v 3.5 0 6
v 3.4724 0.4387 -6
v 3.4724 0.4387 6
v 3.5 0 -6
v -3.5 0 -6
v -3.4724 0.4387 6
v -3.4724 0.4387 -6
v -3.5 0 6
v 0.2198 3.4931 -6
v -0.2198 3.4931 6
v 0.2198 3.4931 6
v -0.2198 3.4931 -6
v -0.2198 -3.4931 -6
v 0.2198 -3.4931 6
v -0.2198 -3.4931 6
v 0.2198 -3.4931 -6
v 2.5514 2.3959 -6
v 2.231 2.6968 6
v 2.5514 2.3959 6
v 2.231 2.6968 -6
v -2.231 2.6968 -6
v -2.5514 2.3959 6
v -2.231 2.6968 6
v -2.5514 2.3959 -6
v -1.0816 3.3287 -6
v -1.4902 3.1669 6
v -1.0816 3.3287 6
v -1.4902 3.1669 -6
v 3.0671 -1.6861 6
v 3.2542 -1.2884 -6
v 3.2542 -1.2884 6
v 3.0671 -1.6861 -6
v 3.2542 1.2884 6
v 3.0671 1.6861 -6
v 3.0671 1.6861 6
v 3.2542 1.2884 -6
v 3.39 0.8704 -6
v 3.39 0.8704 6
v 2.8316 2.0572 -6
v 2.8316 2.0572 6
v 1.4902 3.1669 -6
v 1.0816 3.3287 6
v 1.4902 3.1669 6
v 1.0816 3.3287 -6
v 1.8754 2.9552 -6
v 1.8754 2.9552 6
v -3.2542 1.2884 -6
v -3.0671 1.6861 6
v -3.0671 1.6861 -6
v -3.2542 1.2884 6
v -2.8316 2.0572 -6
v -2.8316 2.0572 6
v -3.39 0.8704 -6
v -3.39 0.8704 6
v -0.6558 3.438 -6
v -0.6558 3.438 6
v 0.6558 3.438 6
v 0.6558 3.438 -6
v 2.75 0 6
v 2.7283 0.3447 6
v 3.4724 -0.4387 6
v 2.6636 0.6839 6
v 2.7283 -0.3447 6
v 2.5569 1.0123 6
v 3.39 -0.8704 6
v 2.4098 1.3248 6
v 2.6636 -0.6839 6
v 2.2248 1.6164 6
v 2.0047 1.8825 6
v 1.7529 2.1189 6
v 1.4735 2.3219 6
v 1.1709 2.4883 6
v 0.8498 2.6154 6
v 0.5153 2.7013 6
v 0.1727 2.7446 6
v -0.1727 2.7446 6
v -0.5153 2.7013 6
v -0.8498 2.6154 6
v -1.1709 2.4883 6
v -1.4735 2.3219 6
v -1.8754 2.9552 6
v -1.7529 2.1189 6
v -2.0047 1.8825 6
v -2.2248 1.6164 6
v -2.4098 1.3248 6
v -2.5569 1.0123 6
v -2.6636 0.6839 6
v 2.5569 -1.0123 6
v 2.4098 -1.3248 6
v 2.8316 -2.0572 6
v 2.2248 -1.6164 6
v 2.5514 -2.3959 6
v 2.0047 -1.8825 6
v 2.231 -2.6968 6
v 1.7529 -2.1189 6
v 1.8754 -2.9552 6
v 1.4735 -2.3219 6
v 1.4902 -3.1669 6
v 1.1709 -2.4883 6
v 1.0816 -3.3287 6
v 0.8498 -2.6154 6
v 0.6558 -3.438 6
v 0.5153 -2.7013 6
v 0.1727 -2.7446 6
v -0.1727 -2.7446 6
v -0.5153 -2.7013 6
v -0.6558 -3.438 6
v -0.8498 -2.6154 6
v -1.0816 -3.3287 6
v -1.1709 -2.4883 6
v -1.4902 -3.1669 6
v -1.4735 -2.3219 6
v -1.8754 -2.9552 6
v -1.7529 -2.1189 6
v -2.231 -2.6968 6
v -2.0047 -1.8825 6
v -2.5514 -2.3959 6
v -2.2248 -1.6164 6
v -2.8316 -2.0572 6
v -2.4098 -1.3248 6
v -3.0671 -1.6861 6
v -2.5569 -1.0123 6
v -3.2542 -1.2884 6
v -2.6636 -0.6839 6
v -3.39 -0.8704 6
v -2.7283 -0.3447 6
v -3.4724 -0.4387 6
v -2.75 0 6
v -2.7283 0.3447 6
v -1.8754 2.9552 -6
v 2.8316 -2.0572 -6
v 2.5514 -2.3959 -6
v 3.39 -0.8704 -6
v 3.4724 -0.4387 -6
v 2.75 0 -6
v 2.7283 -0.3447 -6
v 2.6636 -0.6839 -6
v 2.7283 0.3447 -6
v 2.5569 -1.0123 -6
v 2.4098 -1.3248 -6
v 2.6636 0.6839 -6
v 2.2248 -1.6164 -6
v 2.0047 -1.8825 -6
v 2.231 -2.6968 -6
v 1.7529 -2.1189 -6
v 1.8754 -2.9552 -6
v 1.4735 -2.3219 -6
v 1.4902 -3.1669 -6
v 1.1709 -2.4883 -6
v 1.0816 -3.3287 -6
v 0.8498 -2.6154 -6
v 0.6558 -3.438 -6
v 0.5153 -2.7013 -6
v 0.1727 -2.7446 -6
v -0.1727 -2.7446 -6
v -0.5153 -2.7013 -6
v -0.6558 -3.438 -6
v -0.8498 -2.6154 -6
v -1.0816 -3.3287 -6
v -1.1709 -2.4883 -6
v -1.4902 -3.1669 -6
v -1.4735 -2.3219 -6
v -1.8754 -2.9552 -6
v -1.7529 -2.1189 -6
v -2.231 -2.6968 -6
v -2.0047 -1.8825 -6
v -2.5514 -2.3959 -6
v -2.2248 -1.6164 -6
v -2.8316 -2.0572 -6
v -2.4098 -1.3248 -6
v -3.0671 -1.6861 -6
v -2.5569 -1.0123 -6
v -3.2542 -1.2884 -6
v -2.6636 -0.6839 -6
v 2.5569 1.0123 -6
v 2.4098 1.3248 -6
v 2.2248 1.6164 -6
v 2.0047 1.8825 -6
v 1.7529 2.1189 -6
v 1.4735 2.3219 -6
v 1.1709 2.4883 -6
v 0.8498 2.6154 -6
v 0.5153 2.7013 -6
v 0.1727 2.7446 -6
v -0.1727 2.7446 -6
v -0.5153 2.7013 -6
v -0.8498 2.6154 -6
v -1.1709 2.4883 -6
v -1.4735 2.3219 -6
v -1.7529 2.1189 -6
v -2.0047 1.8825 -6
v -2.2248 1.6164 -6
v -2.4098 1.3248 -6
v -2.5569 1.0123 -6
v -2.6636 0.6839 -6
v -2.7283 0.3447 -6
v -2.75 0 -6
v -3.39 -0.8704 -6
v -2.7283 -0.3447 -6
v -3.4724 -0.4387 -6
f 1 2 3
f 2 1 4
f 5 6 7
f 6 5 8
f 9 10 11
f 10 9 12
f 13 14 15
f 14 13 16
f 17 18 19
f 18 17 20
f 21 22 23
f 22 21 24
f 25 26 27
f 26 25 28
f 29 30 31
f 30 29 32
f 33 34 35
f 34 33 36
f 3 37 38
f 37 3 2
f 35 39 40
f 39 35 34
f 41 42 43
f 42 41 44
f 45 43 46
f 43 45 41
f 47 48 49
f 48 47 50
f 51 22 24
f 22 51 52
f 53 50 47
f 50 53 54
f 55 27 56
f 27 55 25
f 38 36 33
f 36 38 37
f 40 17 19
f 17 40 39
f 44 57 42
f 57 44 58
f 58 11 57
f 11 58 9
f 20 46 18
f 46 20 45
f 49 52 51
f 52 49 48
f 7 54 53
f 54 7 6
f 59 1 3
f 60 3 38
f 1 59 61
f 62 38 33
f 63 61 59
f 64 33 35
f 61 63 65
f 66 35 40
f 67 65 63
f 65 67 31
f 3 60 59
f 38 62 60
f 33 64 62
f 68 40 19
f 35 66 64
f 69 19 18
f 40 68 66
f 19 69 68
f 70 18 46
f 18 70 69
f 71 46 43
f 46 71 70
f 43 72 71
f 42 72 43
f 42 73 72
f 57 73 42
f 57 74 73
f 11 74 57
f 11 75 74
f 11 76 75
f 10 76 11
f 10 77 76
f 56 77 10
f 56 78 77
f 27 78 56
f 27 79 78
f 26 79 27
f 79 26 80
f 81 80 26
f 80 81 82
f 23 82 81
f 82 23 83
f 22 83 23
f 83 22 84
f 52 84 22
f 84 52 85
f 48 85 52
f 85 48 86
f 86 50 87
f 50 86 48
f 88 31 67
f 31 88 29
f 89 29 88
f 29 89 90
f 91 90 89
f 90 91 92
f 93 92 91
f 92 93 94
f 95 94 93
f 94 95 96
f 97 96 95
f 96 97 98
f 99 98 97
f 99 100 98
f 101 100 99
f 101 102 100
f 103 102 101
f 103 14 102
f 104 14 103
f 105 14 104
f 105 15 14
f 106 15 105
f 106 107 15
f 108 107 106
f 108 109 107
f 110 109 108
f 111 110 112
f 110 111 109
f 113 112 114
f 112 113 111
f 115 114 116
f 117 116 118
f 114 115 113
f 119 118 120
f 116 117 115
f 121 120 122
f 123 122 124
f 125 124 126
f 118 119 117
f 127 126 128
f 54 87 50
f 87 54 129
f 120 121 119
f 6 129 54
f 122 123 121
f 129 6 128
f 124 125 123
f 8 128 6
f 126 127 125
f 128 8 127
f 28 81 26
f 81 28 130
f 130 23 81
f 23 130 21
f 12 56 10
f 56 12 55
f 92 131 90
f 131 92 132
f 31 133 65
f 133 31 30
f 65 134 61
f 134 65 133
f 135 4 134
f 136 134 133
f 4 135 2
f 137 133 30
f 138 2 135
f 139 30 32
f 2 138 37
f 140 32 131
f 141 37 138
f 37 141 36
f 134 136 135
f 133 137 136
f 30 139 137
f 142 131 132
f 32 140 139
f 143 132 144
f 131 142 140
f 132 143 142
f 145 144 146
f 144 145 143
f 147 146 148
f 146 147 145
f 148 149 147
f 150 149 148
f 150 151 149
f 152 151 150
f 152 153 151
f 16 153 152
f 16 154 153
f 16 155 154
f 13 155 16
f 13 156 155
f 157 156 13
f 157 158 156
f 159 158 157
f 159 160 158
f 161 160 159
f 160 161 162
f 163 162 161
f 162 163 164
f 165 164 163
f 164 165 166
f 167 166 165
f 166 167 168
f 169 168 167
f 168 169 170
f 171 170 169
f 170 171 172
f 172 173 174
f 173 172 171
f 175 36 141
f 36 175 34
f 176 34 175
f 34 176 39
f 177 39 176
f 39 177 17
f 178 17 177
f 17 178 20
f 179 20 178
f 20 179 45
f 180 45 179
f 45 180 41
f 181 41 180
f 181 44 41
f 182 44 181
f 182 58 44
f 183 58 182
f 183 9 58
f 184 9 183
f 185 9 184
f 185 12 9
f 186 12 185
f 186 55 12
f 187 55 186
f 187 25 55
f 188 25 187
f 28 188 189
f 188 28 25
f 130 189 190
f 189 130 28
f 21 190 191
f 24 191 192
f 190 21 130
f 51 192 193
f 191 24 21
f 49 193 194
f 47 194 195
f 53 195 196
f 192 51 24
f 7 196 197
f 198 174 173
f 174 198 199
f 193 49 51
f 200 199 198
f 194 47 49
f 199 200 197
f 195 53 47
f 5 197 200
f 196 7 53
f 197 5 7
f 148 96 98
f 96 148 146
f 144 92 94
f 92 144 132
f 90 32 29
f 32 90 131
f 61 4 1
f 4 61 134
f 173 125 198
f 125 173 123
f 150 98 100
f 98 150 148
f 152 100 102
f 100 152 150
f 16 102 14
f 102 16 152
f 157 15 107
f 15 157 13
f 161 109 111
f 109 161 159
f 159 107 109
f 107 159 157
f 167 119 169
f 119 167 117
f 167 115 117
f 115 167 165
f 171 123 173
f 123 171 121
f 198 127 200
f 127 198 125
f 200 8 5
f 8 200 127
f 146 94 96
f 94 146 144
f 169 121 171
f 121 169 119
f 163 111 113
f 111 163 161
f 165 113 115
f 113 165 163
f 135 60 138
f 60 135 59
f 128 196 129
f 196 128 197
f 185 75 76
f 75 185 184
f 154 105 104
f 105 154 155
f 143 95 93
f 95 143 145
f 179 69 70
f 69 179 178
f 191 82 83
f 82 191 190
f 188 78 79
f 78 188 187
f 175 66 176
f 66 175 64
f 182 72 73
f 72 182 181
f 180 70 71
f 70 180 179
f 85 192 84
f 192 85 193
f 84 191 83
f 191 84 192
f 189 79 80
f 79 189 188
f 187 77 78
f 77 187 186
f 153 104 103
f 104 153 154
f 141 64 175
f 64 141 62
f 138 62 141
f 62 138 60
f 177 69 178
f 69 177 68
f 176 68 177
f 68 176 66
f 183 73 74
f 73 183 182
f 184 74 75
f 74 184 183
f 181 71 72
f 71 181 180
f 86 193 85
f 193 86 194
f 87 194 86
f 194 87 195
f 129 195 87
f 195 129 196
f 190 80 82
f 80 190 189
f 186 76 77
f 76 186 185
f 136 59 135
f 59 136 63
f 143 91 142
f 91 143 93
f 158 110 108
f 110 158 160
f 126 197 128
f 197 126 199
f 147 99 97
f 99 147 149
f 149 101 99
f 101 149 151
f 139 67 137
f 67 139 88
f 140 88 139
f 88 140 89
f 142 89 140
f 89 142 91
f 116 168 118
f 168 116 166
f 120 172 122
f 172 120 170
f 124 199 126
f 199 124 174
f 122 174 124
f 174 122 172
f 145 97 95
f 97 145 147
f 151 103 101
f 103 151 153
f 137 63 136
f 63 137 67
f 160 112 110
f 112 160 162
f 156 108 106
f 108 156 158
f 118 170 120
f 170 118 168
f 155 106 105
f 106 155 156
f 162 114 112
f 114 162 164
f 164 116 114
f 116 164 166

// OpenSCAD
$fn = 50;


difference() {
	union() {
		translate(v = [0, 0, -6.0000000000]) {
			cylinder(h = 12, r = 3.5000000000);
		}
	}
	union() {
		translate(v = [0, 0, -100.0000000000]) {
			cylinder(h = 200, r = 2.7500000000);
		}
	}
}
